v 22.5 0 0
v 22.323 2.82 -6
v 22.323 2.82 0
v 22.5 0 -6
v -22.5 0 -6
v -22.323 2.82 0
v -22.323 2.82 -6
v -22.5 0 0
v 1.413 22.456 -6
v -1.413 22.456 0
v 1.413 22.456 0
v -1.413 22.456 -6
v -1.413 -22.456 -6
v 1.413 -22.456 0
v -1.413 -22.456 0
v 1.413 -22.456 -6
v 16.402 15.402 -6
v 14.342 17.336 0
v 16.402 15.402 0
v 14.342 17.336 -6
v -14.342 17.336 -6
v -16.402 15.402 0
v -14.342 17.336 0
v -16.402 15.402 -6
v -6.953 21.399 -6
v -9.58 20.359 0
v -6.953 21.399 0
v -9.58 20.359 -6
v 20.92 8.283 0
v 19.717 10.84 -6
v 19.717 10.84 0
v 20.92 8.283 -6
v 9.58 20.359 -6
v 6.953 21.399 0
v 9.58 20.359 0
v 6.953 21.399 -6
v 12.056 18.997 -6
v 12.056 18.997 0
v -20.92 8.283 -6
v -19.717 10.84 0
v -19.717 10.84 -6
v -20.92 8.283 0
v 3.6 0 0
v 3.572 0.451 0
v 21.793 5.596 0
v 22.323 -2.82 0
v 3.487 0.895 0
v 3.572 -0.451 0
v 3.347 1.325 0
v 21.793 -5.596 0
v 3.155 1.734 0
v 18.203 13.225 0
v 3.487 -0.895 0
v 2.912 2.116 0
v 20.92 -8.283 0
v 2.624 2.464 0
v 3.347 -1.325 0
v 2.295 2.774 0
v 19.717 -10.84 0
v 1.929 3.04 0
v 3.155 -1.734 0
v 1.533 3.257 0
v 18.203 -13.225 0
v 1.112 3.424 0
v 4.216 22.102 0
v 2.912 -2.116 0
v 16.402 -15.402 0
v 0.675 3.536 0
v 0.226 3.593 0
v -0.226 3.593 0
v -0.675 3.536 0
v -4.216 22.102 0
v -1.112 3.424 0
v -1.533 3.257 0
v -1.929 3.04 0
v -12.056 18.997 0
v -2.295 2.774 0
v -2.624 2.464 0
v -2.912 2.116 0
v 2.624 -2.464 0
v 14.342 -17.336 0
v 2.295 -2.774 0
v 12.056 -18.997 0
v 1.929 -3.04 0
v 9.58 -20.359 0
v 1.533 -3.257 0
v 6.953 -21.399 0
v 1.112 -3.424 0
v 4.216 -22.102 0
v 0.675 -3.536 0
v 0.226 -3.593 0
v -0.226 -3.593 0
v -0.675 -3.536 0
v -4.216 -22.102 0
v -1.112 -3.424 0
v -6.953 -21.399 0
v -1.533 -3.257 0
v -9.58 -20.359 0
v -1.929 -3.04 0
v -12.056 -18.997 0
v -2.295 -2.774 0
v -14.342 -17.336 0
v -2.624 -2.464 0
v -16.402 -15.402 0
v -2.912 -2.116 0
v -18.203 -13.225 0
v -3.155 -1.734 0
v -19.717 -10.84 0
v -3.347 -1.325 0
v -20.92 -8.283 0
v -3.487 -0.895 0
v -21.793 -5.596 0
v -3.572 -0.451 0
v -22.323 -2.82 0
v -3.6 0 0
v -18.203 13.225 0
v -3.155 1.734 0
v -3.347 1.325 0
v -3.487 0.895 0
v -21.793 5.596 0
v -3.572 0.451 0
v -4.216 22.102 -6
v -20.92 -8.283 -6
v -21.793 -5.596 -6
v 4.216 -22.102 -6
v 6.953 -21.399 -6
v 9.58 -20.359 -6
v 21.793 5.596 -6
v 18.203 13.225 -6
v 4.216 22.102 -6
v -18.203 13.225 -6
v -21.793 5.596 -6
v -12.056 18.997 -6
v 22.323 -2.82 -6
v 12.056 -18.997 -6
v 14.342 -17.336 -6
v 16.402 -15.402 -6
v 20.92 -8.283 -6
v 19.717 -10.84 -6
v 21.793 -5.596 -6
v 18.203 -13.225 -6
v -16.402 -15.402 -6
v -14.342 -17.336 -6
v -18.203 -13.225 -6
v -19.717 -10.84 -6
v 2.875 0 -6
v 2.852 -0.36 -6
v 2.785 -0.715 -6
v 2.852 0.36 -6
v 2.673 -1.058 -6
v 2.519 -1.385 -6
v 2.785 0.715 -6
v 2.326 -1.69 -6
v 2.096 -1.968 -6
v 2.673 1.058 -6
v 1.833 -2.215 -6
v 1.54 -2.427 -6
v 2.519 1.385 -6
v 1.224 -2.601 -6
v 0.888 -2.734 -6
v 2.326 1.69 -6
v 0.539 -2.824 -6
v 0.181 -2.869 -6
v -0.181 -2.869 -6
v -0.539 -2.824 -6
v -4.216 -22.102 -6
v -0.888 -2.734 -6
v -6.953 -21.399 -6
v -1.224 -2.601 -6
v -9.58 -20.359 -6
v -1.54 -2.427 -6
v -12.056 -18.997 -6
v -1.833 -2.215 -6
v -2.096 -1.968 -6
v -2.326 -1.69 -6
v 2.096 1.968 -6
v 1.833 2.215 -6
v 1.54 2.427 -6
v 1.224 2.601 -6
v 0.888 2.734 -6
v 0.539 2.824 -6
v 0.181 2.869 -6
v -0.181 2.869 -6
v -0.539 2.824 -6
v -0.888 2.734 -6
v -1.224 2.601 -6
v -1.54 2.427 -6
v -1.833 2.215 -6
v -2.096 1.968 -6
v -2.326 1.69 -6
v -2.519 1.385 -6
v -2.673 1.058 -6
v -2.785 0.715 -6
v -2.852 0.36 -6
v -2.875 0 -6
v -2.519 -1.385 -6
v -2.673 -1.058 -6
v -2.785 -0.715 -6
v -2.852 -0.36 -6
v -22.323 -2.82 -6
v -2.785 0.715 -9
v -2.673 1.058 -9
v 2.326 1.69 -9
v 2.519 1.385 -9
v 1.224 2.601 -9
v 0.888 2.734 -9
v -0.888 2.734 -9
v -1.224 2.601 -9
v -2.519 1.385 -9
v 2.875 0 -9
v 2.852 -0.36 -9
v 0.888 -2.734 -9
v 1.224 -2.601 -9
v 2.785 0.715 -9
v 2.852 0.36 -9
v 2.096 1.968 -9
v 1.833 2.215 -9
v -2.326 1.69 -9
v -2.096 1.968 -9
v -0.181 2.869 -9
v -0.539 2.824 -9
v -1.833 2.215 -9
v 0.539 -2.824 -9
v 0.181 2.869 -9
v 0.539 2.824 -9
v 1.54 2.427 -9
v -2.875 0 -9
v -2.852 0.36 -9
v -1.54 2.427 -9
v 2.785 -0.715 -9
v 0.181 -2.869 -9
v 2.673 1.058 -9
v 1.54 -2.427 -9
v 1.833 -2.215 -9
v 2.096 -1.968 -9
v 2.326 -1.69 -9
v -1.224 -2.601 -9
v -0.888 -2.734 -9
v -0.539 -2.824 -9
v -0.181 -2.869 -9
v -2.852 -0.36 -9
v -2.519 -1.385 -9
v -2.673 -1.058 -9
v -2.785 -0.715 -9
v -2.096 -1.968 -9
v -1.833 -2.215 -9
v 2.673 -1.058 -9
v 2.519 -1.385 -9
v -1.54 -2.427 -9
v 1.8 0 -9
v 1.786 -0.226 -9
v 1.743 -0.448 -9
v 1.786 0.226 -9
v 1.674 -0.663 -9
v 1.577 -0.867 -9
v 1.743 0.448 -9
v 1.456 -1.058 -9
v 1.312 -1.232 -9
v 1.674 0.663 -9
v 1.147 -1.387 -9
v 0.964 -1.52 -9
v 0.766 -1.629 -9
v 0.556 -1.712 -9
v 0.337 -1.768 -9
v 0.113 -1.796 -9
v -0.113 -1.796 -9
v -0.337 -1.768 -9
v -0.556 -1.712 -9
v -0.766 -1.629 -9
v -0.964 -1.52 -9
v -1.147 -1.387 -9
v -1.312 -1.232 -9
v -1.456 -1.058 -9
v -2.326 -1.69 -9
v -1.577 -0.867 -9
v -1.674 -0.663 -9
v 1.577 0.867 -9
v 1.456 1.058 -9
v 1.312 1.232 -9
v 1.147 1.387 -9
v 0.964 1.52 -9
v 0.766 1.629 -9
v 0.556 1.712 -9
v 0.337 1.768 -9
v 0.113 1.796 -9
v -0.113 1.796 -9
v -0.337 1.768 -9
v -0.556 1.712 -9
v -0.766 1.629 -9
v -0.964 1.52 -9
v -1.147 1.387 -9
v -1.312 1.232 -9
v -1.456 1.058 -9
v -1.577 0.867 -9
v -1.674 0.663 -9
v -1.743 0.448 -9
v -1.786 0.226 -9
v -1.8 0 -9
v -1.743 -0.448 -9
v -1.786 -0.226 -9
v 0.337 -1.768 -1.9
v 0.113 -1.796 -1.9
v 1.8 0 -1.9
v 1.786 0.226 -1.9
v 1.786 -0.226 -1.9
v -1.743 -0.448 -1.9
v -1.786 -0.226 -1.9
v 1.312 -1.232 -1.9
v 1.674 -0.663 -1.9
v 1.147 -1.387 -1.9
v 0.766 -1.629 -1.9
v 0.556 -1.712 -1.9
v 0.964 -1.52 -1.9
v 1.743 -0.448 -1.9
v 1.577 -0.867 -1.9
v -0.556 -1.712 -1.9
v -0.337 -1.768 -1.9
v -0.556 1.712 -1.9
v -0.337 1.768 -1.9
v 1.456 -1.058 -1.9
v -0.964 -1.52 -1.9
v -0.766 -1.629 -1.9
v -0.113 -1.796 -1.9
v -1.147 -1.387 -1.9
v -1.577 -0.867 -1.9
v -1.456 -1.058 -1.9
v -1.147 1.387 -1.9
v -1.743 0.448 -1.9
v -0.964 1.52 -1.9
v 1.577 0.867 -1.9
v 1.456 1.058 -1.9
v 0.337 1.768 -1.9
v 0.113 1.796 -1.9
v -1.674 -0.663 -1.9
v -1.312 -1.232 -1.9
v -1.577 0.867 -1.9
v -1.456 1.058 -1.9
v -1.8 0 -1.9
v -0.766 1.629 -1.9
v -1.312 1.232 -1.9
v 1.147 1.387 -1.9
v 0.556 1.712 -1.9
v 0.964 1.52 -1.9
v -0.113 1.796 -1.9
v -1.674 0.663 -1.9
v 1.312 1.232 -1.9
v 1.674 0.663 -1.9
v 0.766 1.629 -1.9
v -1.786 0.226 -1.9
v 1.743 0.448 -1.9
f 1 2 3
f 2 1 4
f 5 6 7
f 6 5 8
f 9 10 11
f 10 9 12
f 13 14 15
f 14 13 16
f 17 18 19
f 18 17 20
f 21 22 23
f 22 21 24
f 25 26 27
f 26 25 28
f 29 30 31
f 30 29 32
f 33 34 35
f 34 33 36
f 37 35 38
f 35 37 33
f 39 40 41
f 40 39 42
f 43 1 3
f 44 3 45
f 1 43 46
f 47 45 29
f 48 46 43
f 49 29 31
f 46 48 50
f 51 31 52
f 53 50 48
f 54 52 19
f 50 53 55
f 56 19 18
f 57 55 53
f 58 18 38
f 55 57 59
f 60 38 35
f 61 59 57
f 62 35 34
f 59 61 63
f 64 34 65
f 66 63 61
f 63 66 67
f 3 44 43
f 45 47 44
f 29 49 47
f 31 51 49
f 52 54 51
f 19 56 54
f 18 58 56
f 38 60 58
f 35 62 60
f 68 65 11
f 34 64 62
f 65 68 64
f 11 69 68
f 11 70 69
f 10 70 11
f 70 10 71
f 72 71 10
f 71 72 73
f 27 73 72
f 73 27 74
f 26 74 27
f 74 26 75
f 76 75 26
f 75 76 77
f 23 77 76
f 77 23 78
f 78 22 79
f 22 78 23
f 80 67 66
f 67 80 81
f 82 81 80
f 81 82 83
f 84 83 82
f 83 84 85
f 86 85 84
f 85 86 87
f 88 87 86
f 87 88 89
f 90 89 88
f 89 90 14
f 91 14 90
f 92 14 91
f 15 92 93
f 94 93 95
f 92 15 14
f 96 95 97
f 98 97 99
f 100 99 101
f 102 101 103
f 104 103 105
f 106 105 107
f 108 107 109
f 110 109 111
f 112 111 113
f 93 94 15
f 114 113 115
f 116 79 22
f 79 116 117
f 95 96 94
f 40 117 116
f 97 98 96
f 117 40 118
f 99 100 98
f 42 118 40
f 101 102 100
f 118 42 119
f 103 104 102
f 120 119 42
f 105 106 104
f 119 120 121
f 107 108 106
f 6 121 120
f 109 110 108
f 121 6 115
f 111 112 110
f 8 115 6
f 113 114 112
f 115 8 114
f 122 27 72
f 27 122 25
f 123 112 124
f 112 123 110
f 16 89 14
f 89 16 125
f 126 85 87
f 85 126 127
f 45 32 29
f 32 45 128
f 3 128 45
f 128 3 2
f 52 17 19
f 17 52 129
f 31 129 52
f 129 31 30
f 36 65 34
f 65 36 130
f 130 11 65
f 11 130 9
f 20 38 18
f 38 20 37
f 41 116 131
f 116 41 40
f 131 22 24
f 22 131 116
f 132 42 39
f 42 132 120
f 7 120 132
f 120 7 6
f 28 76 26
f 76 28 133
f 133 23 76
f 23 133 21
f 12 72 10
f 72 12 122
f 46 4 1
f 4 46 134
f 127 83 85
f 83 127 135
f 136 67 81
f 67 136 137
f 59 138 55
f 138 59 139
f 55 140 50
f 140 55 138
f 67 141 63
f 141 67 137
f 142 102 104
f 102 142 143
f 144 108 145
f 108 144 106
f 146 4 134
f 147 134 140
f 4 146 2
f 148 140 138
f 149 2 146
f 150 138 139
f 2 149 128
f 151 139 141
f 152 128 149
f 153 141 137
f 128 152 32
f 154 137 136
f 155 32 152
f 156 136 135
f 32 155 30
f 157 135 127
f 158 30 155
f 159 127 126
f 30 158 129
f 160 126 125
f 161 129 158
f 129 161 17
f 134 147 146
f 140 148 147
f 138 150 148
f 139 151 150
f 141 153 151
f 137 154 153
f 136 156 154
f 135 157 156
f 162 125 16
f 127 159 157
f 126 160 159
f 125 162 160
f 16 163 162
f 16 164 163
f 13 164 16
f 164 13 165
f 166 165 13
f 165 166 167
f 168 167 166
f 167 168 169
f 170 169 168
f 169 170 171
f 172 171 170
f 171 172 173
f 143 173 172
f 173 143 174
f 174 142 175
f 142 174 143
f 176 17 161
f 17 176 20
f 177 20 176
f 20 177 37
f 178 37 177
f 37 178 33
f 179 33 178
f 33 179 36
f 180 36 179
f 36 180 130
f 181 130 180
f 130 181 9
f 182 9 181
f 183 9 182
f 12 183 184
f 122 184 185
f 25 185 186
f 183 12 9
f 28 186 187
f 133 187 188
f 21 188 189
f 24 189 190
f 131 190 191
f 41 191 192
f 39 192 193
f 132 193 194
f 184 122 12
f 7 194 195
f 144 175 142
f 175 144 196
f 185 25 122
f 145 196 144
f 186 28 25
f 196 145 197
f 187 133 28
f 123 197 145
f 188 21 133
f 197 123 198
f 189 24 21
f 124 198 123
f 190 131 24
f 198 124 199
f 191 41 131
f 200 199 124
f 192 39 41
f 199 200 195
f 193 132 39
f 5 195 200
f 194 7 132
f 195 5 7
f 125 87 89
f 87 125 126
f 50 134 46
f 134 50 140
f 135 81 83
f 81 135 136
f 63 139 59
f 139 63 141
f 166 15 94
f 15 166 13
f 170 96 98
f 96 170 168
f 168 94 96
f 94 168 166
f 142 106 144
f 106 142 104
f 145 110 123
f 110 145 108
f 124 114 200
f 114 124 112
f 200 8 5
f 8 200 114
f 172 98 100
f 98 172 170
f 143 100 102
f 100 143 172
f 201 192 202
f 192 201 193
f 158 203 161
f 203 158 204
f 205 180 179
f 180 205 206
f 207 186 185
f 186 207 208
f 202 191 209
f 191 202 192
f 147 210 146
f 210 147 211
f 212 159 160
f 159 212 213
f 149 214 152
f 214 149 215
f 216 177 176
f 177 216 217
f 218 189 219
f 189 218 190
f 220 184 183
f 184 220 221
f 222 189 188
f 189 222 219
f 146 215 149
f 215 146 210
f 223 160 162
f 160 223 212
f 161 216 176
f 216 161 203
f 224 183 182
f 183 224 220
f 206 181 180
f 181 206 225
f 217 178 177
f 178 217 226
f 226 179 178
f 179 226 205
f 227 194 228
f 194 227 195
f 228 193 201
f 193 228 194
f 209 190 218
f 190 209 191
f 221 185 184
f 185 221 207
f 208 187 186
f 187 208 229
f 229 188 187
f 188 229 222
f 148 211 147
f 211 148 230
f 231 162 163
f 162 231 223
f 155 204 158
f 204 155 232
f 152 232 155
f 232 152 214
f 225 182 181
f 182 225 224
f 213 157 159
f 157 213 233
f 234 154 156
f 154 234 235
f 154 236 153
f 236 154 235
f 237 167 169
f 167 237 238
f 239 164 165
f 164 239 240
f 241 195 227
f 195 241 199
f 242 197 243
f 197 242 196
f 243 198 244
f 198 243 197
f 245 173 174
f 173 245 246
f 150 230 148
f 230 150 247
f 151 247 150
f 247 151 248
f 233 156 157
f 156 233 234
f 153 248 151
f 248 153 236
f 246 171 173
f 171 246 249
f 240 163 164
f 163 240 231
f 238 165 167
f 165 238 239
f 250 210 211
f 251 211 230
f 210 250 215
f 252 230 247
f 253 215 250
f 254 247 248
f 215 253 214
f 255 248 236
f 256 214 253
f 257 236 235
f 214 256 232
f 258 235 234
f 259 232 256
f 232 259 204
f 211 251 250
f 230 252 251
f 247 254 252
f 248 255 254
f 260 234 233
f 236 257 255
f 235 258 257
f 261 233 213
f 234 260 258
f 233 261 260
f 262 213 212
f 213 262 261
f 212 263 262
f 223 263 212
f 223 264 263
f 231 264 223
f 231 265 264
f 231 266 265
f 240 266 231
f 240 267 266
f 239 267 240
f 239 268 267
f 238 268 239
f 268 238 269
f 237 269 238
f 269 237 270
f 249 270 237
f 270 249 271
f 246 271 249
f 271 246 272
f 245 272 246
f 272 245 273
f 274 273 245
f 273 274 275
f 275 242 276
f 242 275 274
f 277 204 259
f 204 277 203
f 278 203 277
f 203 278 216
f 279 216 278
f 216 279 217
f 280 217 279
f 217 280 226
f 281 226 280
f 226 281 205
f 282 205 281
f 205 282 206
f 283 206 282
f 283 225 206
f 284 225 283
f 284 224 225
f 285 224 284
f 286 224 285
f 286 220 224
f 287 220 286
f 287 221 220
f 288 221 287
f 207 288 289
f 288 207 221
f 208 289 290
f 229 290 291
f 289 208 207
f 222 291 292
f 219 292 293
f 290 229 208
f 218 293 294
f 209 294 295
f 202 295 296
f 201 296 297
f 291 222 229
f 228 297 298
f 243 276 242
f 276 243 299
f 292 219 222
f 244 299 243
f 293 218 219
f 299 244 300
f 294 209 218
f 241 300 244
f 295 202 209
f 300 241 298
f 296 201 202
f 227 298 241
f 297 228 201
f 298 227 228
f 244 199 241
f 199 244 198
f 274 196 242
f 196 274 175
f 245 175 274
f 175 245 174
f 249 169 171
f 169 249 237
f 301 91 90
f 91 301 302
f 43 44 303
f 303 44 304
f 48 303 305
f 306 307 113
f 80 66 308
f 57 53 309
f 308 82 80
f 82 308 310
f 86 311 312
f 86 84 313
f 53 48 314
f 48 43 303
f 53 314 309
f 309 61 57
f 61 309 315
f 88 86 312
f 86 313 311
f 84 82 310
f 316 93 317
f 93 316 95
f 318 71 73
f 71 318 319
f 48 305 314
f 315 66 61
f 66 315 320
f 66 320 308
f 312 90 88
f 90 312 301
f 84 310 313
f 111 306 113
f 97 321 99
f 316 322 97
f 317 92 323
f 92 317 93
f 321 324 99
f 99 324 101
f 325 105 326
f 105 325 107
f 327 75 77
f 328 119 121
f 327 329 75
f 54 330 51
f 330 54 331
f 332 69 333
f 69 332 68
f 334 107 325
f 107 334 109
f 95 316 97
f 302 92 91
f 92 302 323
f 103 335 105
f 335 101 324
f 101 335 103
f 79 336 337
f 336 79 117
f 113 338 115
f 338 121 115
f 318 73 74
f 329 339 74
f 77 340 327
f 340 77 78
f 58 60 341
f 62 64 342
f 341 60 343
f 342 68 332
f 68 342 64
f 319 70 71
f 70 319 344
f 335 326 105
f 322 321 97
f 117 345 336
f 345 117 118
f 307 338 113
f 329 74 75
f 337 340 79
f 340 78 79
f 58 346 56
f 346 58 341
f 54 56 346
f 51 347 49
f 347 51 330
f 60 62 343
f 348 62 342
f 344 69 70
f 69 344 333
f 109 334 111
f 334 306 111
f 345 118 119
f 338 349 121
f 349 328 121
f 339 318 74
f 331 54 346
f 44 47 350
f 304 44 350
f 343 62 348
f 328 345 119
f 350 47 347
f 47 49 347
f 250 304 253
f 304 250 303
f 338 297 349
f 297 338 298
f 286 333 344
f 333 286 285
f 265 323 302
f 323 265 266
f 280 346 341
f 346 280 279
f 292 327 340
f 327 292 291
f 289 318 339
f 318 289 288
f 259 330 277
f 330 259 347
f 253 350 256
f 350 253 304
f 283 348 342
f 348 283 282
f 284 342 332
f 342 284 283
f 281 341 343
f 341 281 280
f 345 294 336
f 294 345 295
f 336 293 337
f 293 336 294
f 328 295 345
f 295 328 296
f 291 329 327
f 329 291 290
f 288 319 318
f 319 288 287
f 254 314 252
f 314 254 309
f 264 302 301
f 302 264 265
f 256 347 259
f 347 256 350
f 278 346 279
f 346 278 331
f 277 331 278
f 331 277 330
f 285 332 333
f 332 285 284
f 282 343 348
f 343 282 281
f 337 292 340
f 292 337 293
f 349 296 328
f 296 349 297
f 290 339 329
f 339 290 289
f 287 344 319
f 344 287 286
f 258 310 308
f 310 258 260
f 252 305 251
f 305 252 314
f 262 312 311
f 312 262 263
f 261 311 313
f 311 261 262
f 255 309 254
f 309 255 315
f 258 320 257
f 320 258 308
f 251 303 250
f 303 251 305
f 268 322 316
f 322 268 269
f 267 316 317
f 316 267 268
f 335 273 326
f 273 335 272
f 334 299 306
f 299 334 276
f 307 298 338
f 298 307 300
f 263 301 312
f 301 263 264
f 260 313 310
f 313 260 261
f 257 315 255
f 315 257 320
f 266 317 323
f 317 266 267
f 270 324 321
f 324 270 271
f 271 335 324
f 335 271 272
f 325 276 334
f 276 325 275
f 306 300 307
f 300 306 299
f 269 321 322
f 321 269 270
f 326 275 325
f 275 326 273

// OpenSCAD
$fn = 50;


difference() {
	union() {
		translate(v = [0, 0, -6.0000000000]) {
			cylinder(h = 6, r = 22.5000000000);
		}
		translate(v = [0, 0, -9.0000000000]) {
			cylinder(h = 9, r = 2.8750000000);
		}
	}
	union() {
		translate(v = [0, 0, 0]) {
			rotate(a = [0, 0, 0]) {
				difference() {
					union() {
						translate(v = [0, 0, -9.0000000000]) {
							cylinder(h = 9, r = 1.5000000000);
						}
						translate(v = [0, 0, -1.9000000000]) {
							cylinder(h = 1.9000000000, r1 = 1.8000000000, r2 = 3.6000000000);
						}
						translate(v = [0, 0, -9.0000000000]) {
							cylinder(h = 9, r = 1.8000000000);
						}
						translate(v = [0, 0, -9.0000000000]) {
							cylinder(h = 9, r = 1.5000000000);
						}
					}
					union();
				}
			}
		}
	}
}
